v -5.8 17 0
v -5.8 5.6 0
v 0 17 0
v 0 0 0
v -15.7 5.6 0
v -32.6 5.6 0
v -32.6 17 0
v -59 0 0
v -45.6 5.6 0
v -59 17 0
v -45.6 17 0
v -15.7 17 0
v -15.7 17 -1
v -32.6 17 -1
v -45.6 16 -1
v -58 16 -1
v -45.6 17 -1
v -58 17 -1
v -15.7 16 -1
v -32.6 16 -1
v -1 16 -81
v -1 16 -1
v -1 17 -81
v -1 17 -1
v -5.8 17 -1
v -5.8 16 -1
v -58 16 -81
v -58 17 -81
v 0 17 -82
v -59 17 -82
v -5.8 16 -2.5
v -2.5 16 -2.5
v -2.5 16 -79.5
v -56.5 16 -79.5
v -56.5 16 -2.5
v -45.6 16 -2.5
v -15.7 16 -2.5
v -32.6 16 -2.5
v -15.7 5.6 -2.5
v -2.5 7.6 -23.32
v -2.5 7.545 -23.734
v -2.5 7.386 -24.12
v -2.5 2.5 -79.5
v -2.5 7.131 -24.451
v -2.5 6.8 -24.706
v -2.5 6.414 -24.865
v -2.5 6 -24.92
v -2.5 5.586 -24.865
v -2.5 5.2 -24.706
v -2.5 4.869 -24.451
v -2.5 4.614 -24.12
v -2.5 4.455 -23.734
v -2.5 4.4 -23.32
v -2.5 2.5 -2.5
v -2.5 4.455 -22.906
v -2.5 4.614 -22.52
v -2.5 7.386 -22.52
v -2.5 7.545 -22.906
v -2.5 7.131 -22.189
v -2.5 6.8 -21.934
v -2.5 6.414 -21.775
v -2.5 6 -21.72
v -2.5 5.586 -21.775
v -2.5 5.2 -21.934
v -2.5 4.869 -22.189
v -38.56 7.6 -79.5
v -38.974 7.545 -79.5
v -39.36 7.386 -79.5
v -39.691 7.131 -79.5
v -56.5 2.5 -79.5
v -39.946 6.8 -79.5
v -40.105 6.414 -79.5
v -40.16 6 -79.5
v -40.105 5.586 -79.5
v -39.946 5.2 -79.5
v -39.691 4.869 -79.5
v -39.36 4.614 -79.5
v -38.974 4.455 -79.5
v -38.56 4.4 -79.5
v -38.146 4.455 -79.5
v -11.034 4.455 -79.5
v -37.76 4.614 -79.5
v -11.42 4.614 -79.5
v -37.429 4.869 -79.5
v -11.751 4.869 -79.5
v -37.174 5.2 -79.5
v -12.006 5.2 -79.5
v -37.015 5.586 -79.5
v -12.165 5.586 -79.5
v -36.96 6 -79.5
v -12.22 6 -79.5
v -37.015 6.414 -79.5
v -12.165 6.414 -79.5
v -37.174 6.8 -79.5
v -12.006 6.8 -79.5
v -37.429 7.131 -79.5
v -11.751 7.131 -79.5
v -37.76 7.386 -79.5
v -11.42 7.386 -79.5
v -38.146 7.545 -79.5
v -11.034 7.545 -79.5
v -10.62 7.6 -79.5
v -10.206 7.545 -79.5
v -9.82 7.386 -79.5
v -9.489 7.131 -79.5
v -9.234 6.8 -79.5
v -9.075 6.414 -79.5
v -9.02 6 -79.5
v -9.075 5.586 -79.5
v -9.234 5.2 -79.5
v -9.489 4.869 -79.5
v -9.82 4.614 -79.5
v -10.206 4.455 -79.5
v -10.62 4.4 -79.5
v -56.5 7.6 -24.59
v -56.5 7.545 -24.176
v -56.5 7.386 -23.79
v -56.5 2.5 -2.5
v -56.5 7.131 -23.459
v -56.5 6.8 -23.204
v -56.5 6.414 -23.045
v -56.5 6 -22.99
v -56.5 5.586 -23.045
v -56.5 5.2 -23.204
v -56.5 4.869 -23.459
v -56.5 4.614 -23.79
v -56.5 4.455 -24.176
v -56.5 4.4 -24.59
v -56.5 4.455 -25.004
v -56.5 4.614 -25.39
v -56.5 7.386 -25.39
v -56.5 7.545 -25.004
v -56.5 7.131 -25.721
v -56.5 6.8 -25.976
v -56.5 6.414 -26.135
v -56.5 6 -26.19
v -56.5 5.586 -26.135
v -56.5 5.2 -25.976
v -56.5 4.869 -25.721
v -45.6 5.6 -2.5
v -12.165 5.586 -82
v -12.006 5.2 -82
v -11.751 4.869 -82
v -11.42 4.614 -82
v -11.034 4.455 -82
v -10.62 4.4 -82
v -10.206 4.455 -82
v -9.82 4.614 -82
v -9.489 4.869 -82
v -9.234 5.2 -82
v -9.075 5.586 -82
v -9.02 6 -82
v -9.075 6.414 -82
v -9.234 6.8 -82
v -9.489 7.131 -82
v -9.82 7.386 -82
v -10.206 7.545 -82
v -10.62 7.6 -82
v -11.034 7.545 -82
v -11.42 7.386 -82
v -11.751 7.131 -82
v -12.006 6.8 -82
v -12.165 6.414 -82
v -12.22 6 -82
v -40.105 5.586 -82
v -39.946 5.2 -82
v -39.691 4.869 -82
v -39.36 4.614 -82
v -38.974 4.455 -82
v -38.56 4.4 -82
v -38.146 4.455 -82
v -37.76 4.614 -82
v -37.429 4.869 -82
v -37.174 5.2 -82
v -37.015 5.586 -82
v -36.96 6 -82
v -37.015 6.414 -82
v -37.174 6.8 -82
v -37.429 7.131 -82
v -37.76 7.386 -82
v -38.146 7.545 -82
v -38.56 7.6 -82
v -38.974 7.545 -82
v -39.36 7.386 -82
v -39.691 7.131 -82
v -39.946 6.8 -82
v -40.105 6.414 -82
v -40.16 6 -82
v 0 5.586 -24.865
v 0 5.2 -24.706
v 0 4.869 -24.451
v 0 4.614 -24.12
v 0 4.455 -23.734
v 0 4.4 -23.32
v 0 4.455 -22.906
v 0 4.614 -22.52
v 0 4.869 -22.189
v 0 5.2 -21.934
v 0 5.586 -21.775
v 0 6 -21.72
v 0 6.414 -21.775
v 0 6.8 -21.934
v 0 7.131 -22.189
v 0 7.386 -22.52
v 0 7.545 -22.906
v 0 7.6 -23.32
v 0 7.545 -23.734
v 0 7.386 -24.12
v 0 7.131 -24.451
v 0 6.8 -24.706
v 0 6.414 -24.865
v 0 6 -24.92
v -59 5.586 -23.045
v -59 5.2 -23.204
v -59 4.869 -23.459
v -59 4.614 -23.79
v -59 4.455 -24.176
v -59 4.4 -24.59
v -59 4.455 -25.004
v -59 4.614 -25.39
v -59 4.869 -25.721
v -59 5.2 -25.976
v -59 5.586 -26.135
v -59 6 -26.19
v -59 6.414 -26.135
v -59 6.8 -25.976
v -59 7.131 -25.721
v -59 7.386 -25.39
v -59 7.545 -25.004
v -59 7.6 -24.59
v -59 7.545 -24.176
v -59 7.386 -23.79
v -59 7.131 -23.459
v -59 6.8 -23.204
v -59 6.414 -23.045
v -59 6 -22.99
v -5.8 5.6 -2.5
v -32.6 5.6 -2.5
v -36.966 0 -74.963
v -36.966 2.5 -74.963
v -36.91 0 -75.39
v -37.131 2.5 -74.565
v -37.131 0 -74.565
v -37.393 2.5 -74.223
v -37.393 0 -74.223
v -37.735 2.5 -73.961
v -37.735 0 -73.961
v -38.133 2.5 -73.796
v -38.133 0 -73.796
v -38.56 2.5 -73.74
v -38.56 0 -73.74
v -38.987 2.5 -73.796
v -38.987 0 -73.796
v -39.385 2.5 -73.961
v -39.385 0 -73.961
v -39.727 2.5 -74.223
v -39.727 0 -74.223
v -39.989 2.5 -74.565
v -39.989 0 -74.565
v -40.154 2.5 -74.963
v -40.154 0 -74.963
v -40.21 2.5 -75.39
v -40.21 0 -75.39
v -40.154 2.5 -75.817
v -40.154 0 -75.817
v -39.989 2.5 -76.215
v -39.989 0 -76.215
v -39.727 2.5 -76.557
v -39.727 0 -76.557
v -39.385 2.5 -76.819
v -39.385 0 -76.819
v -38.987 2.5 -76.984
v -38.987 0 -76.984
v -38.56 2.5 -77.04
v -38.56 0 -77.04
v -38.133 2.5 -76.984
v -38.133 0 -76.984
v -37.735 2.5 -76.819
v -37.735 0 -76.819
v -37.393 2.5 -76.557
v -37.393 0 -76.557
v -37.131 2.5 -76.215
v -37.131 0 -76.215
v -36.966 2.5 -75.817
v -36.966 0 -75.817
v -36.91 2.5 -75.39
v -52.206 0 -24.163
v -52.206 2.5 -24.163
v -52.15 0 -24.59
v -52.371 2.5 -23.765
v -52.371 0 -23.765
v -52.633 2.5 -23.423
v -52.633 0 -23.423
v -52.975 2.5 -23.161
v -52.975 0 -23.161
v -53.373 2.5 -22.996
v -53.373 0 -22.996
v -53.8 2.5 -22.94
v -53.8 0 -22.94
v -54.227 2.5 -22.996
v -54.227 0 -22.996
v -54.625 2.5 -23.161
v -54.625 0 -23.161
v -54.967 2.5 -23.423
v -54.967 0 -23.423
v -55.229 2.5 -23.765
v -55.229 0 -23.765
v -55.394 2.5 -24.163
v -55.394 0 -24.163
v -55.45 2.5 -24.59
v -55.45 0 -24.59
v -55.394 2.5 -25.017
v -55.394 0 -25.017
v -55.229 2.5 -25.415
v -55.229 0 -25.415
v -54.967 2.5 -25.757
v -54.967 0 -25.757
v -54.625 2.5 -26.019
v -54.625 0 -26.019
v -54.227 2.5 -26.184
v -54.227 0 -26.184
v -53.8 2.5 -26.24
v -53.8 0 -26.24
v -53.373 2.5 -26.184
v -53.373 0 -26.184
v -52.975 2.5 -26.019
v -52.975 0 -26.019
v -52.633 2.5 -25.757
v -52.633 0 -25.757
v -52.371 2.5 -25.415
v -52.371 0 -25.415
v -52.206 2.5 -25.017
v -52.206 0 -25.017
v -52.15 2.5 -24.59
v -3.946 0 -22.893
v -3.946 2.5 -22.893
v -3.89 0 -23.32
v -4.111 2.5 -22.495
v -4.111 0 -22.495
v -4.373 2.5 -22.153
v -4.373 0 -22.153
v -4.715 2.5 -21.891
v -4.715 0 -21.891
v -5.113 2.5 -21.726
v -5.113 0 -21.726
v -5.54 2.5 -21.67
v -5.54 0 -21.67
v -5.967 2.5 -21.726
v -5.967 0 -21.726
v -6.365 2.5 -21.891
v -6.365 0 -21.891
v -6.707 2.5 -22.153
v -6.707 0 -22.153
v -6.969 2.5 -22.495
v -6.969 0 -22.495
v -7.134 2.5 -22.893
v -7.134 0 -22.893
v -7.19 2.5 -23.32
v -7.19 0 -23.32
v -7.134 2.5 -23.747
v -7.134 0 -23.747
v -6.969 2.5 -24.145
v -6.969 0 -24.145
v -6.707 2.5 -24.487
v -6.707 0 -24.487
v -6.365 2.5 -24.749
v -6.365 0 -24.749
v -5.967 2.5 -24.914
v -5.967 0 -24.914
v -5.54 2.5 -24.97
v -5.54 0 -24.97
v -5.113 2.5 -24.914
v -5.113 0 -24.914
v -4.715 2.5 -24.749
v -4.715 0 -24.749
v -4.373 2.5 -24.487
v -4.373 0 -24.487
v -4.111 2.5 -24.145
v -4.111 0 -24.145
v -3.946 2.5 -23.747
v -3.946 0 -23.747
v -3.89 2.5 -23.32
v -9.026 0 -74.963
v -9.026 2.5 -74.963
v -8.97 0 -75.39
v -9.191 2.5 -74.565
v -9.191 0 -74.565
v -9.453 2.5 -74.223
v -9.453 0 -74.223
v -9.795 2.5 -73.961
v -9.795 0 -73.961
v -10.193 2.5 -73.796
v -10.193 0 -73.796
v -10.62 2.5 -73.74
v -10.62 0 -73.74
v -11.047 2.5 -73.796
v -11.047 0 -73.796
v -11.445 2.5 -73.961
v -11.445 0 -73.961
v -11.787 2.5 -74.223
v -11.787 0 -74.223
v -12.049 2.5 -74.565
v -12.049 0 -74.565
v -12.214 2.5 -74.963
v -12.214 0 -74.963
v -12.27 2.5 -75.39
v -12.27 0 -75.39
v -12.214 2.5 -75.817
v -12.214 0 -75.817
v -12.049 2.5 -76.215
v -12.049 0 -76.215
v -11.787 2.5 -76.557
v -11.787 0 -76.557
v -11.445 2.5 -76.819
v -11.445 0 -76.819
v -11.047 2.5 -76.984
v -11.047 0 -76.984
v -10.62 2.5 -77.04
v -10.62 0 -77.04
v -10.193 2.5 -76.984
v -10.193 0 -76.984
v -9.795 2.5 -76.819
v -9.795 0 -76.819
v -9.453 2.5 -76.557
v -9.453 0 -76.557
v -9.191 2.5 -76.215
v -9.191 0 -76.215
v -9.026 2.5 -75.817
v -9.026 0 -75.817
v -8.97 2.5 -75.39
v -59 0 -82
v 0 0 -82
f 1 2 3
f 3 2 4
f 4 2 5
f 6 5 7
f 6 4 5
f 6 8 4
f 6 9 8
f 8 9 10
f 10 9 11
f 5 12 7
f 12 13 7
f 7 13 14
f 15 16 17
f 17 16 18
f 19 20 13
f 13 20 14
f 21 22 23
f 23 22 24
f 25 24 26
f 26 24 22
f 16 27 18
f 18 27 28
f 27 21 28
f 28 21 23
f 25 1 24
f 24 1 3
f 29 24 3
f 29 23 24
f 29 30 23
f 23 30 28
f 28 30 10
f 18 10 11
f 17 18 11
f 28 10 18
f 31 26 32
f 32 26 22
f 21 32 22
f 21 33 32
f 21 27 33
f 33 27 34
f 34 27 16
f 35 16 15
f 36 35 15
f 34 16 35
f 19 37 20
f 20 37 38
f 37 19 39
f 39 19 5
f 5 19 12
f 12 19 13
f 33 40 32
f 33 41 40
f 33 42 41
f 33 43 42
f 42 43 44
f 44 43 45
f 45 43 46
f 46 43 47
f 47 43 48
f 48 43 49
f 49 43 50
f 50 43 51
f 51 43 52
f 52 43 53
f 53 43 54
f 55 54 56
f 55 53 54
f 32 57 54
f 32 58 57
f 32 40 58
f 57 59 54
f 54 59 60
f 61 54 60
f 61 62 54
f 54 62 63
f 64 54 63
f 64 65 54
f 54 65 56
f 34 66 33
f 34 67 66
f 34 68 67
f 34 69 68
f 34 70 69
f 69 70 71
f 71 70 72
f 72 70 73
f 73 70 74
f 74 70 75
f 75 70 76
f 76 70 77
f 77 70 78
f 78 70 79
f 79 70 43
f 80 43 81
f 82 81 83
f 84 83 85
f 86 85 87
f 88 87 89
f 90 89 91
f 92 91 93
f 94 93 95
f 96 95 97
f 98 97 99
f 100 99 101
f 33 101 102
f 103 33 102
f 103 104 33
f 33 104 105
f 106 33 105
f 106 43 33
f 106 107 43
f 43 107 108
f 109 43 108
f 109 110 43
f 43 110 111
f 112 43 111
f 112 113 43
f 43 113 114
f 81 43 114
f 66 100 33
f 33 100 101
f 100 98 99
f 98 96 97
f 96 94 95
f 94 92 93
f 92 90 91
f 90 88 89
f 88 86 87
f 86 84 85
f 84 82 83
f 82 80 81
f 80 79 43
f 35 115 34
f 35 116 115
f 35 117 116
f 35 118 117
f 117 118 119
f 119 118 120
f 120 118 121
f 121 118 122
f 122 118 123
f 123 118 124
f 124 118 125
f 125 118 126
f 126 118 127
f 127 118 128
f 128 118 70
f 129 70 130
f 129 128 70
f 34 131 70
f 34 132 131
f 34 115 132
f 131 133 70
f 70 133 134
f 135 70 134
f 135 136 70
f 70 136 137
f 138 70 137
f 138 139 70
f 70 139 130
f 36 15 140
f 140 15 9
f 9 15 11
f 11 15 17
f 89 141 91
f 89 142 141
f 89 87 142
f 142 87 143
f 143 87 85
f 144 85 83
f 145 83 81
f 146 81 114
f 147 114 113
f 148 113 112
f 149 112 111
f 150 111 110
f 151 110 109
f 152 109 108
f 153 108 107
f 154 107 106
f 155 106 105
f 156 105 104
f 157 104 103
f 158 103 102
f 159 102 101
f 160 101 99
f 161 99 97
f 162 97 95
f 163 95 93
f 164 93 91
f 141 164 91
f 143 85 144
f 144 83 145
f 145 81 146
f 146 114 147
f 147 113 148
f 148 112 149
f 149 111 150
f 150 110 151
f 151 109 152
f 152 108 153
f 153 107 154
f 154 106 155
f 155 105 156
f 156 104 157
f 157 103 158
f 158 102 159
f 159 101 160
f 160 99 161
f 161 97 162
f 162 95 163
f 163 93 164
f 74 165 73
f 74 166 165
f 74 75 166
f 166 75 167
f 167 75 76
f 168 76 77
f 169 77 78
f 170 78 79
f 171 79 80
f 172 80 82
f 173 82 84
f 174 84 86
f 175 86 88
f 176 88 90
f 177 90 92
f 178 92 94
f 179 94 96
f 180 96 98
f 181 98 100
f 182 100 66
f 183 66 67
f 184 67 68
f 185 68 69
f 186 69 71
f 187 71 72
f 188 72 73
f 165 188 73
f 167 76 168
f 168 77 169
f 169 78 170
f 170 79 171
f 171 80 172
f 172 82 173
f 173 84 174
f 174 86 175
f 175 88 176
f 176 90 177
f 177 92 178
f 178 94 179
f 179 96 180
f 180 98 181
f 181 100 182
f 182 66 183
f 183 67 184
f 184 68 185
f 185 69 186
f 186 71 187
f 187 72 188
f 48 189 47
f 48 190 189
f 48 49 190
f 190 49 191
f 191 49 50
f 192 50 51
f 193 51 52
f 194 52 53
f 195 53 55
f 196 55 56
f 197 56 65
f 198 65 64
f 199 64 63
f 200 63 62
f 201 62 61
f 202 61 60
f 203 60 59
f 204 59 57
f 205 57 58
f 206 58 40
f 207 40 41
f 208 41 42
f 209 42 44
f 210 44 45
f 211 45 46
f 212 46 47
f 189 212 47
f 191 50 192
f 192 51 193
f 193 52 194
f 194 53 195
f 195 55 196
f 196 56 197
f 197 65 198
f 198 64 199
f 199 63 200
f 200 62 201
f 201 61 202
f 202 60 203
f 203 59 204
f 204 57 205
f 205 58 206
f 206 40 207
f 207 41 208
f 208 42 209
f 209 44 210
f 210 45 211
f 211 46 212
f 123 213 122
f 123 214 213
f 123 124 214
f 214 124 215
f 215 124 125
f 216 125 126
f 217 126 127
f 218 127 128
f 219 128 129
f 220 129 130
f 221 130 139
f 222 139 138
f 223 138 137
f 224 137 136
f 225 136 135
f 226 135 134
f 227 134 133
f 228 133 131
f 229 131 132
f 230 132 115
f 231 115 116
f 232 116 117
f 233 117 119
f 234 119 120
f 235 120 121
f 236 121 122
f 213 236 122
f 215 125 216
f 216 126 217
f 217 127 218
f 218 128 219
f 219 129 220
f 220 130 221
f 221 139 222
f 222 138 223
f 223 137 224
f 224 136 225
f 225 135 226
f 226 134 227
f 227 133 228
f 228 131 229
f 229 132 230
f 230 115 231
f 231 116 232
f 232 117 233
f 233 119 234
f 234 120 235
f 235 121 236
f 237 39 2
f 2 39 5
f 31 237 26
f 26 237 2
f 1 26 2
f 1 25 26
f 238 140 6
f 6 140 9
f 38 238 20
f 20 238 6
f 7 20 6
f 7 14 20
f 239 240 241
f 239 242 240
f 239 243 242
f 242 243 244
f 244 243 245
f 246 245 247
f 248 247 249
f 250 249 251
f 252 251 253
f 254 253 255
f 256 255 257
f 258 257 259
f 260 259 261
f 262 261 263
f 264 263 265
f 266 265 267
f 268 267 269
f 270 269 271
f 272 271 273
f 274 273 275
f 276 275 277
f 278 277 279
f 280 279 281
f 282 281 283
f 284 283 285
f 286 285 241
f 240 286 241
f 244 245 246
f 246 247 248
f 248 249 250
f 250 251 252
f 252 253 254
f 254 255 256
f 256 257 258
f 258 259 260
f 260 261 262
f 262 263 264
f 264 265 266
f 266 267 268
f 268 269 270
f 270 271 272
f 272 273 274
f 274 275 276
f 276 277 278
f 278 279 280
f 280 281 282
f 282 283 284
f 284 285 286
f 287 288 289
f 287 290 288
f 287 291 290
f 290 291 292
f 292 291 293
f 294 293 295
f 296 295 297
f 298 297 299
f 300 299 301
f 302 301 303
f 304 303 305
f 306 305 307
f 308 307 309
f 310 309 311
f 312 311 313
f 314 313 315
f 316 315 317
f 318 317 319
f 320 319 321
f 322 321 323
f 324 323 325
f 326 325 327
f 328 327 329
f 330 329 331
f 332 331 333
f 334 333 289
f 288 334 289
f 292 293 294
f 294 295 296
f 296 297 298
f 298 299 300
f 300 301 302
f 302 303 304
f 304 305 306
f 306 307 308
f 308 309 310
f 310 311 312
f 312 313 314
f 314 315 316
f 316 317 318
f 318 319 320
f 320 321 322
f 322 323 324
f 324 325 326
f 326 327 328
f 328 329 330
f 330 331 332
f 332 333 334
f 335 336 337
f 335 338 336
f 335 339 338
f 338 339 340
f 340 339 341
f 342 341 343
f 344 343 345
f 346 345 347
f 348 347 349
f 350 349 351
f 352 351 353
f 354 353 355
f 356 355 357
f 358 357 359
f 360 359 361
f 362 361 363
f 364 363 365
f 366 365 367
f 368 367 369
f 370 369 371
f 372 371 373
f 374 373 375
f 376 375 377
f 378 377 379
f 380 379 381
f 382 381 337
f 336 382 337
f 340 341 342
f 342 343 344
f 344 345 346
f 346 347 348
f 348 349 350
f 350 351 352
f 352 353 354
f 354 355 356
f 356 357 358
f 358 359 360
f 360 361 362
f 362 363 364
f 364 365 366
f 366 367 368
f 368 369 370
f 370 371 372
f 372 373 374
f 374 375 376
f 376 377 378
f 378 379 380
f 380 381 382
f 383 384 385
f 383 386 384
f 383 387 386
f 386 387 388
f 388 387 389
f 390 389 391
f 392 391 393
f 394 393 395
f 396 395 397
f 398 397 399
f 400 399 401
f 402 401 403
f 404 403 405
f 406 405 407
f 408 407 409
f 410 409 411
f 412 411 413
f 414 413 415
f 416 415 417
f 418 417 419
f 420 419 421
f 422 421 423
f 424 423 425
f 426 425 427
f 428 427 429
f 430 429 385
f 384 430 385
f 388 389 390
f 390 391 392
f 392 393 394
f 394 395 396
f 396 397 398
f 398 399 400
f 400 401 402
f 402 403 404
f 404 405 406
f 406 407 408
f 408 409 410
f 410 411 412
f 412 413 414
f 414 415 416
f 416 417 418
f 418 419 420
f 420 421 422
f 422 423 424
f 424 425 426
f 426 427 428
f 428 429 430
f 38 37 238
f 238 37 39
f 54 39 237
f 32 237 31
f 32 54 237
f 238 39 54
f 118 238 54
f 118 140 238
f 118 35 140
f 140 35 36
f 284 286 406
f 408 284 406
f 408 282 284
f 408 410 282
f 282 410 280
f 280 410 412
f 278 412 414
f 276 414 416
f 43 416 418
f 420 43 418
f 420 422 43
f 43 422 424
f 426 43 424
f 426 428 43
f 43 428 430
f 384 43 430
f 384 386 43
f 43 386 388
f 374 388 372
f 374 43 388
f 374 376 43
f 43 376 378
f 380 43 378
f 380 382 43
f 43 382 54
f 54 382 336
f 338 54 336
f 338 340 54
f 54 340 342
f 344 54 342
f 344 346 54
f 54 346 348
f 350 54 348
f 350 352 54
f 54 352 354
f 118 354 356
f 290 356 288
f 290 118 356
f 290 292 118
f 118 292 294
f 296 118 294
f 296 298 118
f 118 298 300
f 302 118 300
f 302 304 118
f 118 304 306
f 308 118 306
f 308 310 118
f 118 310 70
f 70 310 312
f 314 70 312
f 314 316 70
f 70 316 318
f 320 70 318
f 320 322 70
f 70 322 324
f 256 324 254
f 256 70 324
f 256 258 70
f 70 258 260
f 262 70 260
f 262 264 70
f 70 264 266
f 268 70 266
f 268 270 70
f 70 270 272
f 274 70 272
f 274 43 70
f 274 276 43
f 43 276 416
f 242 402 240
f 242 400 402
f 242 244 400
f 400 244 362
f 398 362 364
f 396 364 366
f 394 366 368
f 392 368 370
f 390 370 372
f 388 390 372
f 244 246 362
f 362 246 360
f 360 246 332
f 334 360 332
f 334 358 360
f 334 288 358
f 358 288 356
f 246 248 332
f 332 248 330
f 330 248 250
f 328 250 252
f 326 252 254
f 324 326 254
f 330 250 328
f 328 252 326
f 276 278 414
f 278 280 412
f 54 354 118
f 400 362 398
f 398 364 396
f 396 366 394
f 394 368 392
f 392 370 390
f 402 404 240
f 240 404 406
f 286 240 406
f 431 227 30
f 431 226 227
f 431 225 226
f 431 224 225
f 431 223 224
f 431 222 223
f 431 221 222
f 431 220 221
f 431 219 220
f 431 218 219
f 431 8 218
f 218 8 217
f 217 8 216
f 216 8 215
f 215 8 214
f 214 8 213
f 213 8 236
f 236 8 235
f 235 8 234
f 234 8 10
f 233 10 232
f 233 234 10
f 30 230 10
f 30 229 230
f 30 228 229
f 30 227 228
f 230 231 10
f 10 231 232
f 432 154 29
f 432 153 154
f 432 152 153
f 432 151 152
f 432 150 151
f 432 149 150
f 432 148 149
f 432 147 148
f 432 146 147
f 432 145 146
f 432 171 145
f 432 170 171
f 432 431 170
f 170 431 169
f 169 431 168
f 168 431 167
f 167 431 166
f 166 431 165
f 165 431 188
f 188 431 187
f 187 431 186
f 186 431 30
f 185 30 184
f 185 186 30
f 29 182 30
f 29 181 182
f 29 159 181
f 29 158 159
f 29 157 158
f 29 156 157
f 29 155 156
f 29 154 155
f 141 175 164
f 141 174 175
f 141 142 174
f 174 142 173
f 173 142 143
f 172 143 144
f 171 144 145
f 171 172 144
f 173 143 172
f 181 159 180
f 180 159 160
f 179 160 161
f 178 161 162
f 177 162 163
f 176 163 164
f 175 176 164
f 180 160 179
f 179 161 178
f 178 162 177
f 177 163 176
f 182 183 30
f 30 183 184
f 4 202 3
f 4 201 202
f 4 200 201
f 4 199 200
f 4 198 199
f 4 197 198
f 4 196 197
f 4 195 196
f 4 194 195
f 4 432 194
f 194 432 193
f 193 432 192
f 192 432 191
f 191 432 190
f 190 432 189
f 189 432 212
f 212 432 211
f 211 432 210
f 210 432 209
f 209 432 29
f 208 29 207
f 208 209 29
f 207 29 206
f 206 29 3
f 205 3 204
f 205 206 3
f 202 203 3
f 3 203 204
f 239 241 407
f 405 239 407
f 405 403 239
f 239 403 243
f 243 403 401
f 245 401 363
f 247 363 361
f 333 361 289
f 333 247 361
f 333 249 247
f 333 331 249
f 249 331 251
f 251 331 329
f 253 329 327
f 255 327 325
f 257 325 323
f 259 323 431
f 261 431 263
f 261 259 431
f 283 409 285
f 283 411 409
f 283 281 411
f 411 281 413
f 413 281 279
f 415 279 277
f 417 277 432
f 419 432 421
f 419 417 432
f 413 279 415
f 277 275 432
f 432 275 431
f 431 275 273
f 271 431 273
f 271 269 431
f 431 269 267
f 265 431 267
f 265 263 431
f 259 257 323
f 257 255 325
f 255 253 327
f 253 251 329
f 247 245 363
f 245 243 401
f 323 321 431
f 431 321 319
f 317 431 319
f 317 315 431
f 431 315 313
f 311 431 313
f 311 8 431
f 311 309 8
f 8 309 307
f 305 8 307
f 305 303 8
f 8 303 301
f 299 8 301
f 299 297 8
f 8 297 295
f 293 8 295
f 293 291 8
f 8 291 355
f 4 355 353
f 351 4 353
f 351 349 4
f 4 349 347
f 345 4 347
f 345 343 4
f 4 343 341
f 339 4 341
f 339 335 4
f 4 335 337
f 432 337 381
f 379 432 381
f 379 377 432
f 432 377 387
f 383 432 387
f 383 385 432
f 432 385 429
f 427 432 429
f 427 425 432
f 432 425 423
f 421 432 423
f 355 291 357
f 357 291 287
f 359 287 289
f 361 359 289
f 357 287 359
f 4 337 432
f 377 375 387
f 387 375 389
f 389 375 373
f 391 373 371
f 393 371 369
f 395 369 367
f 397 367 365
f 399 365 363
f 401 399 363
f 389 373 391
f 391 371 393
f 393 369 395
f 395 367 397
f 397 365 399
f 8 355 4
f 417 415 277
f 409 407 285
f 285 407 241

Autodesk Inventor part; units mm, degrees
ref_plane "YZ Plane" through (0, 0, 0) normal (1, 0, 0) x (0, 1, 0)
ref_plane "XZ Plane" through (0, 0, 0) normal (0, 1, 0) x (-1, 0, 0)
sketch "Sketch1" plane through (0, 0, 0) normal (0, 1, 0) x (-1, 0, 0)
  line L0 (0, 0) -> (59, 0)
  line L1 (59, 0) -> (59, -82)
  line L2 (59, -82) -> (0, -82)
  line L3 (0, -82) -> (0, 0)
  dimension "d0" = 82
  dimension "d1" = 59
extrude "Extrusion1" add sketch "Sketch1" along normal blind 32
ref_plane "Work Plane1" through (0, 2.5, 0) normal (0, -1, 0) x (1, 0, 0)
sketch "Sketch2" plane through (0, 2.5, 0) normal (0, -1, 0) x (1, 0, 0)
  line L0 (-2.5, -2.5) -> (-56.5, -2.5)
  line L1 (-56.5, -2.5) -> (-56.5, -79.5)
  line L2 (-56.5, -79.5) -> (-2.5, -79.5)
  line L3 (-2.5, -79.5) -> (-2.5, -2.5)
  line L4 (0, 0) -> (0, -82) projected
  line L5 (-59, 0) -> (0, 0) projected
  line L6 (-59, -82) -> (-59, 0) projected
  line L7 (0, -82) -> (-59, -82) projected
  dimension "d5" = 2.5
  dimension "d6" = 2.5
  dimension "d7" = 2.5
  dimension "d8" = 2.5
extrude "Extrusion2" cut sketch "Sketch2" against normal blind 27 contours L3 L2 L1 L0
sketch "Sketch3" plane through (0, 2.5, 0) normal (0, -1, 0) x (1, 0, 0)
  line L0 (-3, -3) -> (-56, -3) construction
  line L1 (-56, -3) -> (-56, -79) construction
  line L2 (-56, -79) -> (-3, -79) construction
  line L3 (-3, -79) -> (-3, -3) construction
  line L4 (-2.5, -2.5) -> (-2.5, -79.5) projected
  line L5 (-56.5, -2.5) -> (-2.5, -2.5) projected
  line L6 (-56.5, -79.5) -> (-56.5, -2.5) projected
  line L7 (-2.5, -79.5) -> (-56.5, -79.5) projected
  circle A0 centre (-53.8, -24.59) radius 1.65
  circle A1 centre (-5.54, -23.32) radius 1.65
  circle A2 centre (-38.56, -75.39) radius 1.65
  circle A3 centre (-10.62, -75.39) radius 1.65
  point P0 (0, 0)
  dimension "d11" = 0.5
  dimension "d12" = 0.5
  dimension "d13" = 0.5
  dimension "d14" = 0.5
  dimension "d15" = 3.3
  dimension "d16" = 20.32
  dimension "d17" = 2.54
  dimension "d18" = 7.62
  dimension "d19" = 72.39
  dimension "d20" = 21.59
  dimension "d22" = 50.8
  dimension "d23" = 35.56
  dimension "d24" = 72.39
extrude "Extrusion3" cut sketch "Sketch3" along normal blind 27 contours A0 | A1 | A2 | A3
sketch "Sketch4" plane through (-59, 0, 0) normal (0, 0, 1) x (1, 0, 0)
  line L0 (13.4, 5.6) -> (26.4, 5.6)
  line L1 (26.4, 5.6) -> (26.4, 16.5)
  line L2 (26.4, 16.5) -> (13.4, 16.5)
  line L3 (13.4, 16.5) -> (13.4, 5.6)
  line L4 (43.3, 5.6) -> (53.2, 5.6)
  line L5 (53.2, 5.6) -> (53.2, 16.5)
  line L6 (53.2, 16.5) -> (43.3, 16.5)
  line L7 (43.3, 16.5) -> (43.3, 5.6)
  line L8 (56.5, 2.5) -> (2.5, 2.5) projected
  line L9 (2.5, 2.5) -> (2.5, 29.5) projected
  line L10 (56.5, 2.5) -> (56.5, 29.5) projected
  point P0 (59, 0)
  dimension "d27" = 13
  dimension "d28" = 10.9
  dimension "d29" = 9.9
  dimension "d31" = 14
  dimension "d32" = 10.9
  dimension "d33" = 3.3
extrude "Extrusion4" cut sketch "Sketch4" against normal blind 5
sketch "Sketch5" plane through (0, 0, -82) normal (0, 0, -1) x (-1, 0, 0)
  line L0 (11.5, 24.5) -> (33.5, 24.5)
  line L1 (33.5, 24.5) -> (33.5, 20.5)
  line L2 (33.5, 20.5) -> (11.5, 20.5)
  line L3 (11.5, 20.5) -> (11.5, 24.5)
  line L4 (37.5, 24.5) -> (43.5, 24.5)
  line L5 (43.5, 24.5) -> (43.5, 20.5)
  line L6 (43.5, 20.5) -> (37.5, 20.5)
  line L7 (37.5, 20.5) -> (37.5, 24.5)
  line L8 (56.5, 2.5) -> (2.5, 2.5) projected
  line L9 (2.5, 2.5) -> (2.5, 29.5) projected
  point P0 (0, 0)
  dimension "d36" = 22
  dimension "d37" = 4
  dimension "d38" = 4
  dimension "d39" = 22
  dimension "d40" = 9
  dimension "d41" = 6
  dimension "d42" = 4
extrude "Extrusion5" cut sketch "Sketch5" against normal blind 5
sketch "Sketch6" plane through (-59, 0, -82) normal (-1, 0, 0) x (0, 0, 1)
  circle A0 centre (57.41, 6) radius 1.6
  line L0 (79.5, 2.5) -> (79.5, 29.5) projected
  line L1 (82, 0) -> (0, 0) projected
  dimension "d45" = 3.2
  dimension "d46" = 22.09
  dimension "d47" = 6
sketch "Sketch7" plane through (0, 0, 0) normal (1, 0, 0) x (0, 0, -1)
  circle A0 centre (23.32, 6) radius 1.6
  line L0 (82, 0) -> (0, 0) projected
  line L1 (2.5, 2.5) -> (2.5, 29.5) projected
  dimension "d48" = 6
  dimension "d49" = 20.82
  dimension "d50" = 3.2
sketch "Sketch8" plane through (0, 0, -82) normal (0, 0, -1) x (-1, 0, 0)
  circle A0 centre (10.62, 6) radius 1.6
  circle A1 centre (38.56, 6) radius 1.6
  line L0 (59, 0) -> (0, 0) projected
  line L1 (2.5, 2.5) -> (2.5, 29.5) projected
  dimension "d51" = 3.2
  dimension "d52" = 3.2
  dimension "d53" = 6
  dimension "d54" = 6
  dimension "d55" = 8.12
  dimension "d56" = 36.06
extrude "Extrusion6" cut sketch "Sketch6" against normal blind 5
extrude "Extrusion7" cut sketch "Sketch7" against normal blind 5
extrude "Extrusion8" cut sketch "Sketch8" against normal blind 5
sketch "Sketch9" plane through (-59, 0, 0) normal (0, 0, 1) x (1, 0, 0)
  line L0 (-2.1645, 16) -> (66.4826, 16)
  line L1 (59, 0) -> (0, 0) projected
  dimension "d63" = 16
split body "Split1" sketch "Sketch9" result one side removed curves L0 removed pieces at (-39.3333, 31.5, -54.6667)
sketch "Sketch10" plane through (-59, 16, -82) normal (0, 1, 0) x (1, 0, 0)
  line L0 (0, -82) -> (0, 0) projected
  line L1 (59, 0) -> (59, -82) projected
  line L2 (0, -82) -> (59, -82)
  line L3 (59, -82) -> (59, 0)
  line L4 (59, 0) -> (0, 0)
  line L5 (0, 0) -> (0, -82)
  line L6 (58, -1) -> (1, -1)
  line L7 (1, -1) -> (1, -81)
  line L8 (1, -81) -> (58, -81)
  line L9 (58, -81) -> (58, -1)
  dimension "d64" = 1
  dimension "d65" = 1
  dimension "d66" = 1
  dimension "d67" = 1
extrude "Extrusion9" add sketch "Sketch10" along normal blind 1
sketch "Sketch11" plane through (-59, 0, 0) normal (0, 0, 1) x (1, 0, 0)
  line L0 (13.4, 16) -> (13.4, 5.6) projected
  line L1 (58, 17) -> (1, 17) projected
  line L2 (13.4, 16) -> (26.4, 16)
  line L3 (26.4, 16) -> (26.4, 17)
  line L4 (26.4, 17) -> (13.4, 17)
  line L5 (13.4, 17) -> (13.4, 16)
  line L6 (43.3, 16) -> (43.3, 5.6) projected
  line L7 (43.3, 16) -> (53.2, 16)
  line L8 (53.2, 16) -> (53.2, 17)
  line L9 (53.2, 17) -> (43.3, 17)
  line L10 (43.3, 17) -> (43.3, 16)
  line L11 (26.4, 16) -> (26.4, 5.6) projected
  line L12 (53.2, 16) -> (53.2, 5.6) projected
  point P0 (59, 0)
extrude "Extrusion10" cut sketch "Sketch11" against normal blind 1
properties part number "Arduino_Box_Lower"
